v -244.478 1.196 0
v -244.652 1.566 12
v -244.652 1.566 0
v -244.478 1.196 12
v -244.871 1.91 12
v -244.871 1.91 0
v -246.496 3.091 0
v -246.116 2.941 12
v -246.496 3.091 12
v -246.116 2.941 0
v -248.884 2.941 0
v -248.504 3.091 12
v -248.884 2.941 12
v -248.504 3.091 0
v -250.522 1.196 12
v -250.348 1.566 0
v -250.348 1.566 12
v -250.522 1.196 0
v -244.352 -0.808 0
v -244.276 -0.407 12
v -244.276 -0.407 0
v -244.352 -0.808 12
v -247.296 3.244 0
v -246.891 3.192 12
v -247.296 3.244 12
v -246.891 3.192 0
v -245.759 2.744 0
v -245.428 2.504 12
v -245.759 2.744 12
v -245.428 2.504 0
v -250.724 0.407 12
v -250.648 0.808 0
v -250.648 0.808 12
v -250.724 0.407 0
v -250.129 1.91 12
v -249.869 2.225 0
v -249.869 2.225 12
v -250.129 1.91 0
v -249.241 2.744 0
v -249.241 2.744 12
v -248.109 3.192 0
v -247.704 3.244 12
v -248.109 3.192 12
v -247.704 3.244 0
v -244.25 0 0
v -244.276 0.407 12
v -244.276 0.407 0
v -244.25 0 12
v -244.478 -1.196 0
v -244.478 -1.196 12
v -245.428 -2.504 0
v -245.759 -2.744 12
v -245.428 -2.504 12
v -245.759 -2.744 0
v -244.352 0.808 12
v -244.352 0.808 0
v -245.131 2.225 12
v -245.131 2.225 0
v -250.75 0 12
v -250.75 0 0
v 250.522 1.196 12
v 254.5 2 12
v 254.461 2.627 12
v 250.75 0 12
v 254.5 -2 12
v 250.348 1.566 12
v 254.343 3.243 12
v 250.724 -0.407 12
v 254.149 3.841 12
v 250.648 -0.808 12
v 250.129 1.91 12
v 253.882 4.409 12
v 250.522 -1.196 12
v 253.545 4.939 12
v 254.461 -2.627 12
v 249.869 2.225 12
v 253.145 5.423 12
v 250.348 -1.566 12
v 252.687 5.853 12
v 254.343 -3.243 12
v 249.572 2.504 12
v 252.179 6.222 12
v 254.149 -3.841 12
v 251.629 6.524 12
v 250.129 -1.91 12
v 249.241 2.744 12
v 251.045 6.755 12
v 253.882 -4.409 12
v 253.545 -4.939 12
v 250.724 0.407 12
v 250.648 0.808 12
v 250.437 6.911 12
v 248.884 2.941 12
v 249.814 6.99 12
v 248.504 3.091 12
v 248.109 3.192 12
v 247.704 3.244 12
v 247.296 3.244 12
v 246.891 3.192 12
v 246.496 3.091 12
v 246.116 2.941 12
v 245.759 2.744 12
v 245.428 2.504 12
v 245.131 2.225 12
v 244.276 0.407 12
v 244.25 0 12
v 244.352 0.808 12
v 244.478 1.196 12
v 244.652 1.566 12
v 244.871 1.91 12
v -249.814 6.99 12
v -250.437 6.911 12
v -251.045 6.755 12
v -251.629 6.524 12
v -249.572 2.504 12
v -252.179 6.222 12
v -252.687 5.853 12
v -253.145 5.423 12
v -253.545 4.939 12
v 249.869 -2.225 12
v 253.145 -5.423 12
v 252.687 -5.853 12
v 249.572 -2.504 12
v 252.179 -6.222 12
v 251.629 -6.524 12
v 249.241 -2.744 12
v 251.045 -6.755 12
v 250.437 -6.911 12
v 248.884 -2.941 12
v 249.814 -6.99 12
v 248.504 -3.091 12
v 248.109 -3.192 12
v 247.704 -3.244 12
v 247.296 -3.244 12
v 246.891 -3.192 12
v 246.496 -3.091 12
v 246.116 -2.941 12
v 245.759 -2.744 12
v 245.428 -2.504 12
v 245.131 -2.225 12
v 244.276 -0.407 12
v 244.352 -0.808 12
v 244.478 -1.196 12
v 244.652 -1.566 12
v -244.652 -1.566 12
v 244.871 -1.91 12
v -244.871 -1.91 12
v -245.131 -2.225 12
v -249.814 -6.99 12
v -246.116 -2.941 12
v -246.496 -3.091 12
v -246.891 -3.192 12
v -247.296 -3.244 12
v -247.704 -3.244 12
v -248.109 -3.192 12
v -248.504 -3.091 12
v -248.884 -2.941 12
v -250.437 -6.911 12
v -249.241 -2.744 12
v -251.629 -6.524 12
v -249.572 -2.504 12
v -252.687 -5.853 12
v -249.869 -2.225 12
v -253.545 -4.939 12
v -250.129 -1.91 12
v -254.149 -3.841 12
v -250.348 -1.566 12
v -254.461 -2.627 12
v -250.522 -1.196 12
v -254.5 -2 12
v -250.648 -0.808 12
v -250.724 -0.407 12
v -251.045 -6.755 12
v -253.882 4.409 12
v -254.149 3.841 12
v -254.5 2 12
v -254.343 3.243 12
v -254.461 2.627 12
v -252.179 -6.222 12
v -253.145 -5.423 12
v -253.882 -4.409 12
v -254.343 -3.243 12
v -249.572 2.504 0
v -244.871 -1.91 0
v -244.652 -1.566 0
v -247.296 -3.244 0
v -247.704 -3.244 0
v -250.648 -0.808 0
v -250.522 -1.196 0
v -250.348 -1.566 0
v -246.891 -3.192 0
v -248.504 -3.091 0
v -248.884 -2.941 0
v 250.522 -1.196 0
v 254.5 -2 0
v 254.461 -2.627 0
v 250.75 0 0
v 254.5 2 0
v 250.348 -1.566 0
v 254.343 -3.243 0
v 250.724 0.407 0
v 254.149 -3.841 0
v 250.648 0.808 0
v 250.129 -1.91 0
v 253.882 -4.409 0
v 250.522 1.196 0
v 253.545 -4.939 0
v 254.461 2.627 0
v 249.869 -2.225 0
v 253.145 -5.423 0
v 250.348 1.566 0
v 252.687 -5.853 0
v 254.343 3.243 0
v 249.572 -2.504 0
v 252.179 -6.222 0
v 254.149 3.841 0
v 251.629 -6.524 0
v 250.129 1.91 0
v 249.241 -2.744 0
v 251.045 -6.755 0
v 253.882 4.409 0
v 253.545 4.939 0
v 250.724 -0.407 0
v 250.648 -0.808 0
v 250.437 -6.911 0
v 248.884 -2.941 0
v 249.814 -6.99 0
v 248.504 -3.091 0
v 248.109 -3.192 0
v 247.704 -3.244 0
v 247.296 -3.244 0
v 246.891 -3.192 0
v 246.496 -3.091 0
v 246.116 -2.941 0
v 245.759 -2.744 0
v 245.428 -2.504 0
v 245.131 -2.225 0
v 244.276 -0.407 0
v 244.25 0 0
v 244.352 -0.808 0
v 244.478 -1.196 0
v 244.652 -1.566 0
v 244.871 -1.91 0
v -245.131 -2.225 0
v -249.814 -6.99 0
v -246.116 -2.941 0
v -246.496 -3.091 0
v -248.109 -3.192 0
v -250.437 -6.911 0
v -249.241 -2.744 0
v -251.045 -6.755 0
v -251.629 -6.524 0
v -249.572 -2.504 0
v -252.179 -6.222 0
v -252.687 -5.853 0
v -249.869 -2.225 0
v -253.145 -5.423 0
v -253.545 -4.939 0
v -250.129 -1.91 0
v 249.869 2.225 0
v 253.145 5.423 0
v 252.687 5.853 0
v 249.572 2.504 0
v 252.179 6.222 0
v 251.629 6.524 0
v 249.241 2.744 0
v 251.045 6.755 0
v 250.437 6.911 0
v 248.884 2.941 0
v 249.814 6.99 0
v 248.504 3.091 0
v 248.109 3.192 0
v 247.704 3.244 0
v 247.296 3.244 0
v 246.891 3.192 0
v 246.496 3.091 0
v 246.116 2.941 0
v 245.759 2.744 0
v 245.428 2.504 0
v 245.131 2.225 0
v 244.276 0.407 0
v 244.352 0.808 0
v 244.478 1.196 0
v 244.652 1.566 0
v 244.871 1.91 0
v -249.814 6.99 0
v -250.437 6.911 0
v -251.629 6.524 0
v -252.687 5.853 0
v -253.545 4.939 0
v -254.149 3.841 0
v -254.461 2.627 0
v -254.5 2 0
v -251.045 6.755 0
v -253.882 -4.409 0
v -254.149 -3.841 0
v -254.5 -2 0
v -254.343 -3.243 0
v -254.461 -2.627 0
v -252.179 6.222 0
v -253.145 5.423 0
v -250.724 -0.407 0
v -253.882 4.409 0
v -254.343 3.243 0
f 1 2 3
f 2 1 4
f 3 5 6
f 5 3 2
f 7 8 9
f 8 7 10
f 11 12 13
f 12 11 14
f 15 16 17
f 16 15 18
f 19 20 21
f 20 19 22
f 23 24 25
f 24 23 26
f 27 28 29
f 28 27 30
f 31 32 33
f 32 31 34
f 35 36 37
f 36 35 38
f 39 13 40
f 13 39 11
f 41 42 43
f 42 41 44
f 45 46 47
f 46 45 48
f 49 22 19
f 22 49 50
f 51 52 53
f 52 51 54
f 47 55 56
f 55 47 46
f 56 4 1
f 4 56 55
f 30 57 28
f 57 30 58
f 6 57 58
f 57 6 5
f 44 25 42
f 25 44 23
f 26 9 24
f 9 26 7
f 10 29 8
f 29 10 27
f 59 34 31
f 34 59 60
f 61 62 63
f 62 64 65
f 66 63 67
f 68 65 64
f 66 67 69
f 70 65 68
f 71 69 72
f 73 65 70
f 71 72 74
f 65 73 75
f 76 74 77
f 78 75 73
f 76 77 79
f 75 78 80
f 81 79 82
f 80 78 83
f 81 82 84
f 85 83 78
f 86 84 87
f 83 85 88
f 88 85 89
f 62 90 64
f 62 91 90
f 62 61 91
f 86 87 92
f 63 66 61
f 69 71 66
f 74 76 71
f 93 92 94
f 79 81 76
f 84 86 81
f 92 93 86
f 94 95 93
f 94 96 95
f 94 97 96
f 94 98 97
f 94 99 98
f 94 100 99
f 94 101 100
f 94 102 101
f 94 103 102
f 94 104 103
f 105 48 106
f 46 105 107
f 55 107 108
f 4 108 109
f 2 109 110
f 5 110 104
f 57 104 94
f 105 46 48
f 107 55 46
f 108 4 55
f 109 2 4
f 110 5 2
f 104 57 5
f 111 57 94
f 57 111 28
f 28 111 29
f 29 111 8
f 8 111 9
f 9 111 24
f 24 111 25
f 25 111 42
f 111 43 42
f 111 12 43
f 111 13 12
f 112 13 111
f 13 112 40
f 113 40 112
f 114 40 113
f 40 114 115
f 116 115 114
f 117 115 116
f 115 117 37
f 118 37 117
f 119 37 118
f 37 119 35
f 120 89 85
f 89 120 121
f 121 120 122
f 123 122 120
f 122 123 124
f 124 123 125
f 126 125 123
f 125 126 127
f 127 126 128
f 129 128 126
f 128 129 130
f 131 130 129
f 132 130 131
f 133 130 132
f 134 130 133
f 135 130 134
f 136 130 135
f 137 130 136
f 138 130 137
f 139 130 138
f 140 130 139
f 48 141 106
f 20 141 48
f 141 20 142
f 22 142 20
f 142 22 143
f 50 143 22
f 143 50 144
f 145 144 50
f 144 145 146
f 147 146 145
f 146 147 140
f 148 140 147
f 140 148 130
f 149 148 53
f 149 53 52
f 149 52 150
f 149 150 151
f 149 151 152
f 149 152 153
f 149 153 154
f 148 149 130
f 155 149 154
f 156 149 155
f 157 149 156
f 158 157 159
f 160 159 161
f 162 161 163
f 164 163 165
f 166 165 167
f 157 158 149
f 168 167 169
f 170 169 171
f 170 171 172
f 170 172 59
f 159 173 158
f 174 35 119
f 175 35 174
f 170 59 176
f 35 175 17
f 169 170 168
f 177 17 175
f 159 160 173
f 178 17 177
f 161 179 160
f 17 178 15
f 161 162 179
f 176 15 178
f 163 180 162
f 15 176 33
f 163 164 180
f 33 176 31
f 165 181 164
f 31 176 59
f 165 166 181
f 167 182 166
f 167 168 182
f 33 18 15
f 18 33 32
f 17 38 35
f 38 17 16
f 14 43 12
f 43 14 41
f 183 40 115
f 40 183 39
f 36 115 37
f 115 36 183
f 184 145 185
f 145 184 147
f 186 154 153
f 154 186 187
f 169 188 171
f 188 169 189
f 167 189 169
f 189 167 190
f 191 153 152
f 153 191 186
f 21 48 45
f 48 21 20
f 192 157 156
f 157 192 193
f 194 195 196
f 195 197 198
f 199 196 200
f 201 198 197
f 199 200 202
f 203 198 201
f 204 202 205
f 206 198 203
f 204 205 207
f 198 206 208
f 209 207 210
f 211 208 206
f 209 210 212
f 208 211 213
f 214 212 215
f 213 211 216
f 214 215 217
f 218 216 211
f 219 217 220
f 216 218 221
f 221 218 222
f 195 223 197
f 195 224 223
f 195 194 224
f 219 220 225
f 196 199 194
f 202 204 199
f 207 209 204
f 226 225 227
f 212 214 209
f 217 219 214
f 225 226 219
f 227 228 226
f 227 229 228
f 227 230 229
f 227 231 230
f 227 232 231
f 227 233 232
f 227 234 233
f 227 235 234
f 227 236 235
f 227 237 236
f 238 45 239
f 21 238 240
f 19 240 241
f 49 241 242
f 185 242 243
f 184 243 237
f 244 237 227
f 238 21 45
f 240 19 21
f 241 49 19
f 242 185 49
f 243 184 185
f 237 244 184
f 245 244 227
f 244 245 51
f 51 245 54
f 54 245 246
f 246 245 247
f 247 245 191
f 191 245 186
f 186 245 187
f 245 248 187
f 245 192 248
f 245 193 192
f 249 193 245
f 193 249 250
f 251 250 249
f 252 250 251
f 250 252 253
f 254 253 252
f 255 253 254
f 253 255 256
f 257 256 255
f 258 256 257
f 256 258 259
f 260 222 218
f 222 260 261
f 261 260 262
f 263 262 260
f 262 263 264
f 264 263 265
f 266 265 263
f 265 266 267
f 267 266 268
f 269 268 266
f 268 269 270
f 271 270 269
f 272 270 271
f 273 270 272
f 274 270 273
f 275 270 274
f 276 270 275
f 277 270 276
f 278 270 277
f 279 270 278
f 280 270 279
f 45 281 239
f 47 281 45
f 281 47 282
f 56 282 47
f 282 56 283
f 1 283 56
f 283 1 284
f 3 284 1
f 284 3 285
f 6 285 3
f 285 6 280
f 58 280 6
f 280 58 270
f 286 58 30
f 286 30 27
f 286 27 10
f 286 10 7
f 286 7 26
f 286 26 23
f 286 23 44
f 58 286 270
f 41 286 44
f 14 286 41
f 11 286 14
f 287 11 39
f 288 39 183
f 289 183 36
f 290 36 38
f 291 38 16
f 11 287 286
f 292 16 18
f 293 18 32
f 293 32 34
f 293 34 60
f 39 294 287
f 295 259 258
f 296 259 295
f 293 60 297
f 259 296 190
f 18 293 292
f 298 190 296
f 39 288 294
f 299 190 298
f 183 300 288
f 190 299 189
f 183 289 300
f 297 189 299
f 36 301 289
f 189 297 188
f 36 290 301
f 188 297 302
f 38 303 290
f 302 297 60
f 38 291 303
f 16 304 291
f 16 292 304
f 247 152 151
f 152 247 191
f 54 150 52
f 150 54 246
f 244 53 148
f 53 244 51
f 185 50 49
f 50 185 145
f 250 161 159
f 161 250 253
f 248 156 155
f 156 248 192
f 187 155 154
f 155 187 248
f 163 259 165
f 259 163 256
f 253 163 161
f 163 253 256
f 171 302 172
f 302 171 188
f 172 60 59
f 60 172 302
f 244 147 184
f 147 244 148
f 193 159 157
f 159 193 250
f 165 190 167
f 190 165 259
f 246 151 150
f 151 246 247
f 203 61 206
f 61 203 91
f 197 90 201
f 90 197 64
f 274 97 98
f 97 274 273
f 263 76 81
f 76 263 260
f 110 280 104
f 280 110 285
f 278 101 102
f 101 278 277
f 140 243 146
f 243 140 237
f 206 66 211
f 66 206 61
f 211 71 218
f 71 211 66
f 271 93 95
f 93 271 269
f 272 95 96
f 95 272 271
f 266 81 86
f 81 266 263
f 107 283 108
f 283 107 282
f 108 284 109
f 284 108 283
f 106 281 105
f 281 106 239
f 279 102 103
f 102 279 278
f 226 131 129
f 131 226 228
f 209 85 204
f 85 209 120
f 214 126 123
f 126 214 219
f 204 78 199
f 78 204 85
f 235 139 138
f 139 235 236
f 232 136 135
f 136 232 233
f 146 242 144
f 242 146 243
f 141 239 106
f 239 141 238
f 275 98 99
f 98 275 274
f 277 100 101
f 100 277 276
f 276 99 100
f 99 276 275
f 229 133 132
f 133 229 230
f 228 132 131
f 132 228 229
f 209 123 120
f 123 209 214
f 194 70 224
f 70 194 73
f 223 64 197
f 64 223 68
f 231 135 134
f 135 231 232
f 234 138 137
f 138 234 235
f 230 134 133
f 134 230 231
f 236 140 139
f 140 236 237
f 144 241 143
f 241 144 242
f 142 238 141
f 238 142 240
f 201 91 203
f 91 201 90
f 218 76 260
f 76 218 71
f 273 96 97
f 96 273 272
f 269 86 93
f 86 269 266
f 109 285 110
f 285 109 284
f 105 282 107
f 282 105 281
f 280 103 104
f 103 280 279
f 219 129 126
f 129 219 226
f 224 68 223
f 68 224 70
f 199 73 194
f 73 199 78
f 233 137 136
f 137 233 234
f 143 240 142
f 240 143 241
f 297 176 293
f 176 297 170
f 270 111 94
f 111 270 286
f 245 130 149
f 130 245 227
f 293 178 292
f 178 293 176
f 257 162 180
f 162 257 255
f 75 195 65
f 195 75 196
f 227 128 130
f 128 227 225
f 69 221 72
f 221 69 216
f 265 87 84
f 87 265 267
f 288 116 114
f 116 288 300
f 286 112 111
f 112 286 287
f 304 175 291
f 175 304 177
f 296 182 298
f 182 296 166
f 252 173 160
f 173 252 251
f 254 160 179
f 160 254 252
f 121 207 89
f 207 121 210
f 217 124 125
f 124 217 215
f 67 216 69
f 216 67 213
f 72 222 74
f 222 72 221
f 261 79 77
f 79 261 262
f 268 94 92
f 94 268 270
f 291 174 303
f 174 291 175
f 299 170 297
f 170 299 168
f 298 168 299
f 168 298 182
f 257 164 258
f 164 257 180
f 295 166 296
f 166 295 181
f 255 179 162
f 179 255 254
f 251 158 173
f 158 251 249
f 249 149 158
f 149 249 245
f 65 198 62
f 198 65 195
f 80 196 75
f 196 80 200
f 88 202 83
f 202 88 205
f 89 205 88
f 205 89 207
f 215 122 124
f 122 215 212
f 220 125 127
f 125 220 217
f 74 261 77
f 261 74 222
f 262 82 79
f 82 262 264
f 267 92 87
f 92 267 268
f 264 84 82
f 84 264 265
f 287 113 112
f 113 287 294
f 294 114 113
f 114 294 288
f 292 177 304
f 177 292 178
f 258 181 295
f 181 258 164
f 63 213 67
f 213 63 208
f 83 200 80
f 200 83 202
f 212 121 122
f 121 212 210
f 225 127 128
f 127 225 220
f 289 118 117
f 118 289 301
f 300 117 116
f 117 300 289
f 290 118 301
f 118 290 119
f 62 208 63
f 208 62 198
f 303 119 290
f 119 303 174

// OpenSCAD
$fn = 50;


difference() {
	union() {
		hull() {
			translate(v = [-249.5000000000, 2.0000000000, 0]) {
				cylinder(h = 12, r = 5);
			}
			translate(v = [249.5000000000, 2.0000000000, 0]) {
				cylinder(h = 12, r = 5);
			}
			translate(v = [-249.5000000000, -2.0000000000, 0]) {
				cylinder(h = 12, r = 5);
			}
			translate(v = [249.5000000000, -2.0000000000, 0]) {
				cylinder(h = 12, r = 5);
			}
		}
	}
	union() {
		translate(v = [-247.5000000000, 0.0000000000, 0]) {
			cylinder(h = 12, r = 3.2500000000);
		}
		translate(v = [247.5000000000, 0.0000000000, 0]) {
			cylinder(h = 12, r = 3.2500000000);
		}
		translate(v = [-247.5000000000, 0.0000000000, 0]) {
			cylinder(h = 12, r = 1.8000000000);
		}
		translate(v = [247.5000000000, 0.0000000000, 0]) {
			cylinder(h = 12, r = 1.8000000000);
		}
		translate(v = [-247.5000000000, 0.0000000000, 0]) {
			cylinder(h = 12, r = 1.8000000000);
		}
		translate(v = [247.5000000000, 0.0000000000, 0]) {
			cylinder(h = 12, r = 1.8000000000);
		}
		translate(v = [-247.5000000000, 0.0000000000, 0]) {
			cylinder(h = 12, r = 1.8000000000);
		}
		translate(v = [247.5000000000, 0.0000000000, 0]) {
			cylinder(h = 12, r = 1.8000000000);
		}
	}
}
